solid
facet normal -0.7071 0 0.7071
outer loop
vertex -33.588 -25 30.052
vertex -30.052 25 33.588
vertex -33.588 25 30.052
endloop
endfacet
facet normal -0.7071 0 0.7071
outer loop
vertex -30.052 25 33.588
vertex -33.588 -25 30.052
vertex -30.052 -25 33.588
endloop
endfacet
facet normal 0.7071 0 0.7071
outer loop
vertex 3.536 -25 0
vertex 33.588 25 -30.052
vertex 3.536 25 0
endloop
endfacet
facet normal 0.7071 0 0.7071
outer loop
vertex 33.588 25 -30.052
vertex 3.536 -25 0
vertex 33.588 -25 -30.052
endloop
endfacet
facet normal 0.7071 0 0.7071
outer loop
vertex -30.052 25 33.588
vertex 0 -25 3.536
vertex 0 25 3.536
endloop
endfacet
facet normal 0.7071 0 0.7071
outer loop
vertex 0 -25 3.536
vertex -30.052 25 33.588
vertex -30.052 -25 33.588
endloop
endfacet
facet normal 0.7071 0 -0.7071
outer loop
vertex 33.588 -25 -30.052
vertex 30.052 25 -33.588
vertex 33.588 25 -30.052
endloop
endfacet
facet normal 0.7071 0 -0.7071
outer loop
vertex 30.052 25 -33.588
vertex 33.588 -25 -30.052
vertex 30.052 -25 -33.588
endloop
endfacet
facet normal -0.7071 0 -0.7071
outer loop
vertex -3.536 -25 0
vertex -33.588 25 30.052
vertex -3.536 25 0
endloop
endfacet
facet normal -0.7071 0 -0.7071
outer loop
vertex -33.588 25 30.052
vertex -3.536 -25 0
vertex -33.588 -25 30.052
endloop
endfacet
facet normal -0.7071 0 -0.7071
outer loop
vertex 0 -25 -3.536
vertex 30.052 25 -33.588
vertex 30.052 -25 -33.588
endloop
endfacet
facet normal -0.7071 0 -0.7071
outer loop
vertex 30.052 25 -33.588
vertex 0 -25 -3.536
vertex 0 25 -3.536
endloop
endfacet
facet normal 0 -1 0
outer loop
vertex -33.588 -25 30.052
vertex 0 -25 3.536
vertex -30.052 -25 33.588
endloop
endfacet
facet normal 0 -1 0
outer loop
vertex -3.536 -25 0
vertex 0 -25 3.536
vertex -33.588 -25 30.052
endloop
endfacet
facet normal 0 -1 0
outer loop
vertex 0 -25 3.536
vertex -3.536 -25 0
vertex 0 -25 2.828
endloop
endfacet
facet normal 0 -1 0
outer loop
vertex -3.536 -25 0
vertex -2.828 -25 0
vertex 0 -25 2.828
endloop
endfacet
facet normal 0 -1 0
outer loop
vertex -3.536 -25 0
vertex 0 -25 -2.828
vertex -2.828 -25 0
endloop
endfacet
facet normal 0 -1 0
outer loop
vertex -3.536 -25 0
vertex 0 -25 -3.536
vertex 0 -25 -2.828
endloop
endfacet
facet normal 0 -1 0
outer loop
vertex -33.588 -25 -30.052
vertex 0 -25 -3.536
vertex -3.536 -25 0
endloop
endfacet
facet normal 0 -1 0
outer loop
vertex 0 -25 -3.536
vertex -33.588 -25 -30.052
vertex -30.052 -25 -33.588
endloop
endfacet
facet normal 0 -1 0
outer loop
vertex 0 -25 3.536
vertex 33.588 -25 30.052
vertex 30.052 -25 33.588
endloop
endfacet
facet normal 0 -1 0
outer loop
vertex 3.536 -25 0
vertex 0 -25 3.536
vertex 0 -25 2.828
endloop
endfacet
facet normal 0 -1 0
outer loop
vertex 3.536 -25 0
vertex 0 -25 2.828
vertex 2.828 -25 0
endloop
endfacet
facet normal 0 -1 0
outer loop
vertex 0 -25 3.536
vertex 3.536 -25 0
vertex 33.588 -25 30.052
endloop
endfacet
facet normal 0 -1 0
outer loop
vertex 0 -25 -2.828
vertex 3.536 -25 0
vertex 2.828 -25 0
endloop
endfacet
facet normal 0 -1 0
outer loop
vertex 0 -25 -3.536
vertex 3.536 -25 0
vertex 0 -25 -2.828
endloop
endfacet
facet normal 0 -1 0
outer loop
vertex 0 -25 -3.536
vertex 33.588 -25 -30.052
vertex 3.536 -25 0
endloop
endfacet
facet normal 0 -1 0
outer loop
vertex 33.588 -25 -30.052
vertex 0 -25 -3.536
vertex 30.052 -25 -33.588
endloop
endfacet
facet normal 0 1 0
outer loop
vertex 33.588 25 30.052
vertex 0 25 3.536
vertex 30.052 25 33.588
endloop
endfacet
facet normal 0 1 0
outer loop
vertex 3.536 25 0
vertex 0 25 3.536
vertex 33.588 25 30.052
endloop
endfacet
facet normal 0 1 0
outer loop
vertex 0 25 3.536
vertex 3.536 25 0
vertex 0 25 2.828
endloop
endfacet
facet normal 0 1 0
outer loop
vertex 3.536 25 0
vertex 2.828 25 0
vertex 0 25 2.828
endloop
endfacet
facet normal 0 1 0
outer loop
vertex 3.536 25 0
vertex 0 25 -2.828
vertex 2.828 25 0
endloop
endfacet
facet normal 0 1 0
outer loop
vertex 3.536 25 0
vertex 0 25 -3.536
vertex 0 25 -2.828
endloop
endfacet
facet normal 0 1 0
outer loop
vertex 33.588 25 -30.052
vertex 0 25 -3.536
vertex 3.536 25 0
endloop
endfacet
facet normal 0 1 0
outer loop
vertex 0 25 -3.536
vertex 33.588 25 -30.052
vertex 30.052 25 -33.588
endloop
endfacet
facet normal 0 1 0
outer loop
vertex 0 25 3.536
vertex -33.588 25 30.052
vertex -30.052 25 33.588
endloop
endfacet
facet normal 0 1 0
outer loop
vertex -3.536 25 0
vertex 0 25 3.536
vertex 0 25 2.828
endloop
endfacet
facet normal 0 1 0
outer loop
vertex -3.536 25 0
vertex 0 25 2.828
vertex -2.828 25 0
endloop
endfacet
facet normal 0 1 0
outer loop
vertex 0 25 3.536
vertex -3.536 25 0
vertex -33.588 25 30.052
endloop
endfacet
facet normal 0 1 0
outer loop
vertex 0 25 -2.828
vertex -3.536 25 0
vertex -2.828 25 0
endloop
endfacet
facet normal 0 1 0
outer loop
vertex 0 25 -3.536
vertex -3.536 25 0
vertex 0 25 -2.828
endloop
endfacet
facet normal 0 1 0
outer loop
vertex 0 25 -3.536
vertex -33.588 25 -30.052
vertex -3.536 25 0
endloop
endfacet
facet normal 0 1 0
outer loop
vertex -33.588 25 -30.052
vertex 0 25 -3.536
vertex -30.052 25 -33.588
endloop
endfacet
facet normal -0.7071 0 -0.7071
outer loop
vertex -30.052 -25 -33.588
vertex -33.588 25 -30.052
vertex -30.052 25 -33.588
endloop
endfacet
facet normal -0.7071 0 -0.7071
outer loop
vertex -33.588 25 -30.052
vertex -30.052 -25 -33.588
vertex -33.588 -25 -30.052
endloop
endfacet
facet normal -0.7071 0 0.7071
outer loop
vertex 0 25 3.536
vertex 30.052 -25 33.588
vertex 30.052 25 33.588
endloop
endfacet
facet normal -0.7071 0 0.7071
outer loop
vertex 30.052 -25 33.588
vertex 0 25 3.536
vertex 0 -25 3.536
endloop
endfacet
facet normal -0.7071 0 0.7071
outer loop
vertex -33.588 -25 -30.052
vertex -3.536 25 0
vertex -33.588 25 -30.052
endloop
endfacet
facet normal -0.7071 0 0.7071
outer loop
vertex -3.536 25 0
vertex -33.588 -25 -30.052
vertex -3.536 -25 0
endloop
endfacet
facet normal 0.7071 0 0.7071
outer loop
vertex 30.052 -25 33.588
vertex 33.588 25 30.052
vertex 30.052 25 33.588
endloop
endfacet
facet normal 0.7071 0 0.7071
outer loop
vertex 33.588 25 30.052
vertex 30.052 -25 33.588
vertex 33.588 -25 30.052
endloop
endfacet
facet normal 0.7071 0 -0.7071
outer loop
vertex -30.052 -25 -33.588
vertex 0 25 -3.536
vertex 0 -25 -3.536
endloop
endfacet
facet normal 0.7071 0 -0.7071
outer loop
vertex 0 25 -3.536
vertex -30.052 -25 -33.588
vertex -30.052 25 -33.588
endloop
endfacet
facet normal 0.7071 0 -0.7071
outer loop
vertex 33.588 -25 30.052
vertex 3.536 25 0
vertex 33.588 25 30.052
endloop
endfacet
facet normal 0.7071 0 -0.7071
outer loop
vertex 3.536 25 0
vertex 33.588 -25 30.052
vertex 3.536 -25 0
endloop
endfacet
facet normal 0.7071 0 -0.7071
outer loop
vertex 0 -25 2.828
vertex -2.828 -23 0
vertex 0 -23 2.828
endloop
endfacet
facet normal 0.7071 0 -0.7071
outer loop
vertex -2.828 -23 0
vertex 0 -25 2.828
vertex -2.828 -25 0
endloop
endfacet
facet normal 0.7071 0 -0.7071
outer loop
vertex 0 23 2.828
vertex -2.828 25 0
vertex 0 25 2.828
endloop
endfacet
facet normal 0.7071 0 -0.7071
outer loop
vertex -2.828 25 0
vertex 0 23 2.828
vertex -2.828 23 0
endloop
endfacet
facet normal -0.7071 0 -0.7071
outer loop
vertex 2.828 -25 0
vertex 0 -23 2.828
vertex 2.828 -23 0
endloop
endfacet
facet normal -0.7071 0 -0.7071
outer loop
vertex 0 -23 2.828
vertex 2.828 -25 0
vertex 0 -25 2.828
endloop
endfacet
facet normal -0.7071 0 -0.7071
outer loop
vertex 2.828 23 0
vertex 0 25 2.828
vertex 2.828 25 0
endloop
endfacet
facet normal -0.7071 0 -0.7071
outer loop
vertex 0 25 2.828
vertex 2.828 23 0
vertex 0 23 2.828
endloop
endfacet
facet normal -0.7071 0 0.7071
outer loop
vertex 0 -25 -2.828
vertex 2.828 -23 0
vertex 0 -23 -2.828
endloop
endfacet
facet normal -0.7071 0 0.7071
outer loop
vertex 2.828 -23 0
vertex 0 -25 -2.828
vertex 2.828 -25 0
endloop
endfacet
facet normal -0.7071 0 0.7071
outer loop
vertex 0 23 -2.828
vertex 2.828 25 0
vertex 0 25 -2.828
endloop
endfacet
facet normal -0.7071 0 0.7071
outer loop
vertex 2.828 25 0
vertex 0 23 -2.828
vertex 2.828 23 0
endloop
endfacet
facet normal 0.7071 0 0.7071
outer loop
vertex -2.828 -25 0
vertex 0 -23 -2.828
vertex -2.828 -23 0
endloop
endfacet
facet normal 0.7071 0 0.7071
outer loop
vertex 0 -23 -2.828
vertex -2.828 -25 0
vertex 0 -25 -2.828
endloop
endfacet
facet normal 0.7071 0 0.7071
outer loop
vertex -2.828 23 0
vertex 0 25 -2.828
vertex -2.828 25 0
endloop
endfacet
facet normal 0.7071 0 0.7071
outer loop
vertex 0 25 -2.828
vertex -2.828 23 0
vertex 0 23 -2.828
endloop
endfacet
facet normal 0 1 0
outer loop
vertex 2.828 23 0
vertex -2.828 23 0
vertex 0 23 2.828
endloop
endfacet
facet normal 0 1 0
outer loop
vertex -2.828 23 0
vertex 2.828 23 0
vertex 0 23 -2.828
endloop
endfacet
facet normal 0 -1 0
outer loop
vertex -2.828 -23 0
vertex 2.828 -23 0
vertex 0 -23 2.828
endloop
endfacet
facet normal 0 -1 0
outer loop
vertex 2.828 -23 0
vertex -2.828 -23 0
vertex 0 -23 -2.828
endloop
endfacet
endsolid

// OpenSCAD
difference() {
union() {
rotate([0,45,0])
    cube([90,50,5], center = true);

rotate([0,-45,0])
    cube([90,50,5], center = true);
}
rotate([0,45,0]) 
    cube([4,51,4], center = true);
}

rotate([0,45,0]) 
    cube([4,46,4], center = true);
